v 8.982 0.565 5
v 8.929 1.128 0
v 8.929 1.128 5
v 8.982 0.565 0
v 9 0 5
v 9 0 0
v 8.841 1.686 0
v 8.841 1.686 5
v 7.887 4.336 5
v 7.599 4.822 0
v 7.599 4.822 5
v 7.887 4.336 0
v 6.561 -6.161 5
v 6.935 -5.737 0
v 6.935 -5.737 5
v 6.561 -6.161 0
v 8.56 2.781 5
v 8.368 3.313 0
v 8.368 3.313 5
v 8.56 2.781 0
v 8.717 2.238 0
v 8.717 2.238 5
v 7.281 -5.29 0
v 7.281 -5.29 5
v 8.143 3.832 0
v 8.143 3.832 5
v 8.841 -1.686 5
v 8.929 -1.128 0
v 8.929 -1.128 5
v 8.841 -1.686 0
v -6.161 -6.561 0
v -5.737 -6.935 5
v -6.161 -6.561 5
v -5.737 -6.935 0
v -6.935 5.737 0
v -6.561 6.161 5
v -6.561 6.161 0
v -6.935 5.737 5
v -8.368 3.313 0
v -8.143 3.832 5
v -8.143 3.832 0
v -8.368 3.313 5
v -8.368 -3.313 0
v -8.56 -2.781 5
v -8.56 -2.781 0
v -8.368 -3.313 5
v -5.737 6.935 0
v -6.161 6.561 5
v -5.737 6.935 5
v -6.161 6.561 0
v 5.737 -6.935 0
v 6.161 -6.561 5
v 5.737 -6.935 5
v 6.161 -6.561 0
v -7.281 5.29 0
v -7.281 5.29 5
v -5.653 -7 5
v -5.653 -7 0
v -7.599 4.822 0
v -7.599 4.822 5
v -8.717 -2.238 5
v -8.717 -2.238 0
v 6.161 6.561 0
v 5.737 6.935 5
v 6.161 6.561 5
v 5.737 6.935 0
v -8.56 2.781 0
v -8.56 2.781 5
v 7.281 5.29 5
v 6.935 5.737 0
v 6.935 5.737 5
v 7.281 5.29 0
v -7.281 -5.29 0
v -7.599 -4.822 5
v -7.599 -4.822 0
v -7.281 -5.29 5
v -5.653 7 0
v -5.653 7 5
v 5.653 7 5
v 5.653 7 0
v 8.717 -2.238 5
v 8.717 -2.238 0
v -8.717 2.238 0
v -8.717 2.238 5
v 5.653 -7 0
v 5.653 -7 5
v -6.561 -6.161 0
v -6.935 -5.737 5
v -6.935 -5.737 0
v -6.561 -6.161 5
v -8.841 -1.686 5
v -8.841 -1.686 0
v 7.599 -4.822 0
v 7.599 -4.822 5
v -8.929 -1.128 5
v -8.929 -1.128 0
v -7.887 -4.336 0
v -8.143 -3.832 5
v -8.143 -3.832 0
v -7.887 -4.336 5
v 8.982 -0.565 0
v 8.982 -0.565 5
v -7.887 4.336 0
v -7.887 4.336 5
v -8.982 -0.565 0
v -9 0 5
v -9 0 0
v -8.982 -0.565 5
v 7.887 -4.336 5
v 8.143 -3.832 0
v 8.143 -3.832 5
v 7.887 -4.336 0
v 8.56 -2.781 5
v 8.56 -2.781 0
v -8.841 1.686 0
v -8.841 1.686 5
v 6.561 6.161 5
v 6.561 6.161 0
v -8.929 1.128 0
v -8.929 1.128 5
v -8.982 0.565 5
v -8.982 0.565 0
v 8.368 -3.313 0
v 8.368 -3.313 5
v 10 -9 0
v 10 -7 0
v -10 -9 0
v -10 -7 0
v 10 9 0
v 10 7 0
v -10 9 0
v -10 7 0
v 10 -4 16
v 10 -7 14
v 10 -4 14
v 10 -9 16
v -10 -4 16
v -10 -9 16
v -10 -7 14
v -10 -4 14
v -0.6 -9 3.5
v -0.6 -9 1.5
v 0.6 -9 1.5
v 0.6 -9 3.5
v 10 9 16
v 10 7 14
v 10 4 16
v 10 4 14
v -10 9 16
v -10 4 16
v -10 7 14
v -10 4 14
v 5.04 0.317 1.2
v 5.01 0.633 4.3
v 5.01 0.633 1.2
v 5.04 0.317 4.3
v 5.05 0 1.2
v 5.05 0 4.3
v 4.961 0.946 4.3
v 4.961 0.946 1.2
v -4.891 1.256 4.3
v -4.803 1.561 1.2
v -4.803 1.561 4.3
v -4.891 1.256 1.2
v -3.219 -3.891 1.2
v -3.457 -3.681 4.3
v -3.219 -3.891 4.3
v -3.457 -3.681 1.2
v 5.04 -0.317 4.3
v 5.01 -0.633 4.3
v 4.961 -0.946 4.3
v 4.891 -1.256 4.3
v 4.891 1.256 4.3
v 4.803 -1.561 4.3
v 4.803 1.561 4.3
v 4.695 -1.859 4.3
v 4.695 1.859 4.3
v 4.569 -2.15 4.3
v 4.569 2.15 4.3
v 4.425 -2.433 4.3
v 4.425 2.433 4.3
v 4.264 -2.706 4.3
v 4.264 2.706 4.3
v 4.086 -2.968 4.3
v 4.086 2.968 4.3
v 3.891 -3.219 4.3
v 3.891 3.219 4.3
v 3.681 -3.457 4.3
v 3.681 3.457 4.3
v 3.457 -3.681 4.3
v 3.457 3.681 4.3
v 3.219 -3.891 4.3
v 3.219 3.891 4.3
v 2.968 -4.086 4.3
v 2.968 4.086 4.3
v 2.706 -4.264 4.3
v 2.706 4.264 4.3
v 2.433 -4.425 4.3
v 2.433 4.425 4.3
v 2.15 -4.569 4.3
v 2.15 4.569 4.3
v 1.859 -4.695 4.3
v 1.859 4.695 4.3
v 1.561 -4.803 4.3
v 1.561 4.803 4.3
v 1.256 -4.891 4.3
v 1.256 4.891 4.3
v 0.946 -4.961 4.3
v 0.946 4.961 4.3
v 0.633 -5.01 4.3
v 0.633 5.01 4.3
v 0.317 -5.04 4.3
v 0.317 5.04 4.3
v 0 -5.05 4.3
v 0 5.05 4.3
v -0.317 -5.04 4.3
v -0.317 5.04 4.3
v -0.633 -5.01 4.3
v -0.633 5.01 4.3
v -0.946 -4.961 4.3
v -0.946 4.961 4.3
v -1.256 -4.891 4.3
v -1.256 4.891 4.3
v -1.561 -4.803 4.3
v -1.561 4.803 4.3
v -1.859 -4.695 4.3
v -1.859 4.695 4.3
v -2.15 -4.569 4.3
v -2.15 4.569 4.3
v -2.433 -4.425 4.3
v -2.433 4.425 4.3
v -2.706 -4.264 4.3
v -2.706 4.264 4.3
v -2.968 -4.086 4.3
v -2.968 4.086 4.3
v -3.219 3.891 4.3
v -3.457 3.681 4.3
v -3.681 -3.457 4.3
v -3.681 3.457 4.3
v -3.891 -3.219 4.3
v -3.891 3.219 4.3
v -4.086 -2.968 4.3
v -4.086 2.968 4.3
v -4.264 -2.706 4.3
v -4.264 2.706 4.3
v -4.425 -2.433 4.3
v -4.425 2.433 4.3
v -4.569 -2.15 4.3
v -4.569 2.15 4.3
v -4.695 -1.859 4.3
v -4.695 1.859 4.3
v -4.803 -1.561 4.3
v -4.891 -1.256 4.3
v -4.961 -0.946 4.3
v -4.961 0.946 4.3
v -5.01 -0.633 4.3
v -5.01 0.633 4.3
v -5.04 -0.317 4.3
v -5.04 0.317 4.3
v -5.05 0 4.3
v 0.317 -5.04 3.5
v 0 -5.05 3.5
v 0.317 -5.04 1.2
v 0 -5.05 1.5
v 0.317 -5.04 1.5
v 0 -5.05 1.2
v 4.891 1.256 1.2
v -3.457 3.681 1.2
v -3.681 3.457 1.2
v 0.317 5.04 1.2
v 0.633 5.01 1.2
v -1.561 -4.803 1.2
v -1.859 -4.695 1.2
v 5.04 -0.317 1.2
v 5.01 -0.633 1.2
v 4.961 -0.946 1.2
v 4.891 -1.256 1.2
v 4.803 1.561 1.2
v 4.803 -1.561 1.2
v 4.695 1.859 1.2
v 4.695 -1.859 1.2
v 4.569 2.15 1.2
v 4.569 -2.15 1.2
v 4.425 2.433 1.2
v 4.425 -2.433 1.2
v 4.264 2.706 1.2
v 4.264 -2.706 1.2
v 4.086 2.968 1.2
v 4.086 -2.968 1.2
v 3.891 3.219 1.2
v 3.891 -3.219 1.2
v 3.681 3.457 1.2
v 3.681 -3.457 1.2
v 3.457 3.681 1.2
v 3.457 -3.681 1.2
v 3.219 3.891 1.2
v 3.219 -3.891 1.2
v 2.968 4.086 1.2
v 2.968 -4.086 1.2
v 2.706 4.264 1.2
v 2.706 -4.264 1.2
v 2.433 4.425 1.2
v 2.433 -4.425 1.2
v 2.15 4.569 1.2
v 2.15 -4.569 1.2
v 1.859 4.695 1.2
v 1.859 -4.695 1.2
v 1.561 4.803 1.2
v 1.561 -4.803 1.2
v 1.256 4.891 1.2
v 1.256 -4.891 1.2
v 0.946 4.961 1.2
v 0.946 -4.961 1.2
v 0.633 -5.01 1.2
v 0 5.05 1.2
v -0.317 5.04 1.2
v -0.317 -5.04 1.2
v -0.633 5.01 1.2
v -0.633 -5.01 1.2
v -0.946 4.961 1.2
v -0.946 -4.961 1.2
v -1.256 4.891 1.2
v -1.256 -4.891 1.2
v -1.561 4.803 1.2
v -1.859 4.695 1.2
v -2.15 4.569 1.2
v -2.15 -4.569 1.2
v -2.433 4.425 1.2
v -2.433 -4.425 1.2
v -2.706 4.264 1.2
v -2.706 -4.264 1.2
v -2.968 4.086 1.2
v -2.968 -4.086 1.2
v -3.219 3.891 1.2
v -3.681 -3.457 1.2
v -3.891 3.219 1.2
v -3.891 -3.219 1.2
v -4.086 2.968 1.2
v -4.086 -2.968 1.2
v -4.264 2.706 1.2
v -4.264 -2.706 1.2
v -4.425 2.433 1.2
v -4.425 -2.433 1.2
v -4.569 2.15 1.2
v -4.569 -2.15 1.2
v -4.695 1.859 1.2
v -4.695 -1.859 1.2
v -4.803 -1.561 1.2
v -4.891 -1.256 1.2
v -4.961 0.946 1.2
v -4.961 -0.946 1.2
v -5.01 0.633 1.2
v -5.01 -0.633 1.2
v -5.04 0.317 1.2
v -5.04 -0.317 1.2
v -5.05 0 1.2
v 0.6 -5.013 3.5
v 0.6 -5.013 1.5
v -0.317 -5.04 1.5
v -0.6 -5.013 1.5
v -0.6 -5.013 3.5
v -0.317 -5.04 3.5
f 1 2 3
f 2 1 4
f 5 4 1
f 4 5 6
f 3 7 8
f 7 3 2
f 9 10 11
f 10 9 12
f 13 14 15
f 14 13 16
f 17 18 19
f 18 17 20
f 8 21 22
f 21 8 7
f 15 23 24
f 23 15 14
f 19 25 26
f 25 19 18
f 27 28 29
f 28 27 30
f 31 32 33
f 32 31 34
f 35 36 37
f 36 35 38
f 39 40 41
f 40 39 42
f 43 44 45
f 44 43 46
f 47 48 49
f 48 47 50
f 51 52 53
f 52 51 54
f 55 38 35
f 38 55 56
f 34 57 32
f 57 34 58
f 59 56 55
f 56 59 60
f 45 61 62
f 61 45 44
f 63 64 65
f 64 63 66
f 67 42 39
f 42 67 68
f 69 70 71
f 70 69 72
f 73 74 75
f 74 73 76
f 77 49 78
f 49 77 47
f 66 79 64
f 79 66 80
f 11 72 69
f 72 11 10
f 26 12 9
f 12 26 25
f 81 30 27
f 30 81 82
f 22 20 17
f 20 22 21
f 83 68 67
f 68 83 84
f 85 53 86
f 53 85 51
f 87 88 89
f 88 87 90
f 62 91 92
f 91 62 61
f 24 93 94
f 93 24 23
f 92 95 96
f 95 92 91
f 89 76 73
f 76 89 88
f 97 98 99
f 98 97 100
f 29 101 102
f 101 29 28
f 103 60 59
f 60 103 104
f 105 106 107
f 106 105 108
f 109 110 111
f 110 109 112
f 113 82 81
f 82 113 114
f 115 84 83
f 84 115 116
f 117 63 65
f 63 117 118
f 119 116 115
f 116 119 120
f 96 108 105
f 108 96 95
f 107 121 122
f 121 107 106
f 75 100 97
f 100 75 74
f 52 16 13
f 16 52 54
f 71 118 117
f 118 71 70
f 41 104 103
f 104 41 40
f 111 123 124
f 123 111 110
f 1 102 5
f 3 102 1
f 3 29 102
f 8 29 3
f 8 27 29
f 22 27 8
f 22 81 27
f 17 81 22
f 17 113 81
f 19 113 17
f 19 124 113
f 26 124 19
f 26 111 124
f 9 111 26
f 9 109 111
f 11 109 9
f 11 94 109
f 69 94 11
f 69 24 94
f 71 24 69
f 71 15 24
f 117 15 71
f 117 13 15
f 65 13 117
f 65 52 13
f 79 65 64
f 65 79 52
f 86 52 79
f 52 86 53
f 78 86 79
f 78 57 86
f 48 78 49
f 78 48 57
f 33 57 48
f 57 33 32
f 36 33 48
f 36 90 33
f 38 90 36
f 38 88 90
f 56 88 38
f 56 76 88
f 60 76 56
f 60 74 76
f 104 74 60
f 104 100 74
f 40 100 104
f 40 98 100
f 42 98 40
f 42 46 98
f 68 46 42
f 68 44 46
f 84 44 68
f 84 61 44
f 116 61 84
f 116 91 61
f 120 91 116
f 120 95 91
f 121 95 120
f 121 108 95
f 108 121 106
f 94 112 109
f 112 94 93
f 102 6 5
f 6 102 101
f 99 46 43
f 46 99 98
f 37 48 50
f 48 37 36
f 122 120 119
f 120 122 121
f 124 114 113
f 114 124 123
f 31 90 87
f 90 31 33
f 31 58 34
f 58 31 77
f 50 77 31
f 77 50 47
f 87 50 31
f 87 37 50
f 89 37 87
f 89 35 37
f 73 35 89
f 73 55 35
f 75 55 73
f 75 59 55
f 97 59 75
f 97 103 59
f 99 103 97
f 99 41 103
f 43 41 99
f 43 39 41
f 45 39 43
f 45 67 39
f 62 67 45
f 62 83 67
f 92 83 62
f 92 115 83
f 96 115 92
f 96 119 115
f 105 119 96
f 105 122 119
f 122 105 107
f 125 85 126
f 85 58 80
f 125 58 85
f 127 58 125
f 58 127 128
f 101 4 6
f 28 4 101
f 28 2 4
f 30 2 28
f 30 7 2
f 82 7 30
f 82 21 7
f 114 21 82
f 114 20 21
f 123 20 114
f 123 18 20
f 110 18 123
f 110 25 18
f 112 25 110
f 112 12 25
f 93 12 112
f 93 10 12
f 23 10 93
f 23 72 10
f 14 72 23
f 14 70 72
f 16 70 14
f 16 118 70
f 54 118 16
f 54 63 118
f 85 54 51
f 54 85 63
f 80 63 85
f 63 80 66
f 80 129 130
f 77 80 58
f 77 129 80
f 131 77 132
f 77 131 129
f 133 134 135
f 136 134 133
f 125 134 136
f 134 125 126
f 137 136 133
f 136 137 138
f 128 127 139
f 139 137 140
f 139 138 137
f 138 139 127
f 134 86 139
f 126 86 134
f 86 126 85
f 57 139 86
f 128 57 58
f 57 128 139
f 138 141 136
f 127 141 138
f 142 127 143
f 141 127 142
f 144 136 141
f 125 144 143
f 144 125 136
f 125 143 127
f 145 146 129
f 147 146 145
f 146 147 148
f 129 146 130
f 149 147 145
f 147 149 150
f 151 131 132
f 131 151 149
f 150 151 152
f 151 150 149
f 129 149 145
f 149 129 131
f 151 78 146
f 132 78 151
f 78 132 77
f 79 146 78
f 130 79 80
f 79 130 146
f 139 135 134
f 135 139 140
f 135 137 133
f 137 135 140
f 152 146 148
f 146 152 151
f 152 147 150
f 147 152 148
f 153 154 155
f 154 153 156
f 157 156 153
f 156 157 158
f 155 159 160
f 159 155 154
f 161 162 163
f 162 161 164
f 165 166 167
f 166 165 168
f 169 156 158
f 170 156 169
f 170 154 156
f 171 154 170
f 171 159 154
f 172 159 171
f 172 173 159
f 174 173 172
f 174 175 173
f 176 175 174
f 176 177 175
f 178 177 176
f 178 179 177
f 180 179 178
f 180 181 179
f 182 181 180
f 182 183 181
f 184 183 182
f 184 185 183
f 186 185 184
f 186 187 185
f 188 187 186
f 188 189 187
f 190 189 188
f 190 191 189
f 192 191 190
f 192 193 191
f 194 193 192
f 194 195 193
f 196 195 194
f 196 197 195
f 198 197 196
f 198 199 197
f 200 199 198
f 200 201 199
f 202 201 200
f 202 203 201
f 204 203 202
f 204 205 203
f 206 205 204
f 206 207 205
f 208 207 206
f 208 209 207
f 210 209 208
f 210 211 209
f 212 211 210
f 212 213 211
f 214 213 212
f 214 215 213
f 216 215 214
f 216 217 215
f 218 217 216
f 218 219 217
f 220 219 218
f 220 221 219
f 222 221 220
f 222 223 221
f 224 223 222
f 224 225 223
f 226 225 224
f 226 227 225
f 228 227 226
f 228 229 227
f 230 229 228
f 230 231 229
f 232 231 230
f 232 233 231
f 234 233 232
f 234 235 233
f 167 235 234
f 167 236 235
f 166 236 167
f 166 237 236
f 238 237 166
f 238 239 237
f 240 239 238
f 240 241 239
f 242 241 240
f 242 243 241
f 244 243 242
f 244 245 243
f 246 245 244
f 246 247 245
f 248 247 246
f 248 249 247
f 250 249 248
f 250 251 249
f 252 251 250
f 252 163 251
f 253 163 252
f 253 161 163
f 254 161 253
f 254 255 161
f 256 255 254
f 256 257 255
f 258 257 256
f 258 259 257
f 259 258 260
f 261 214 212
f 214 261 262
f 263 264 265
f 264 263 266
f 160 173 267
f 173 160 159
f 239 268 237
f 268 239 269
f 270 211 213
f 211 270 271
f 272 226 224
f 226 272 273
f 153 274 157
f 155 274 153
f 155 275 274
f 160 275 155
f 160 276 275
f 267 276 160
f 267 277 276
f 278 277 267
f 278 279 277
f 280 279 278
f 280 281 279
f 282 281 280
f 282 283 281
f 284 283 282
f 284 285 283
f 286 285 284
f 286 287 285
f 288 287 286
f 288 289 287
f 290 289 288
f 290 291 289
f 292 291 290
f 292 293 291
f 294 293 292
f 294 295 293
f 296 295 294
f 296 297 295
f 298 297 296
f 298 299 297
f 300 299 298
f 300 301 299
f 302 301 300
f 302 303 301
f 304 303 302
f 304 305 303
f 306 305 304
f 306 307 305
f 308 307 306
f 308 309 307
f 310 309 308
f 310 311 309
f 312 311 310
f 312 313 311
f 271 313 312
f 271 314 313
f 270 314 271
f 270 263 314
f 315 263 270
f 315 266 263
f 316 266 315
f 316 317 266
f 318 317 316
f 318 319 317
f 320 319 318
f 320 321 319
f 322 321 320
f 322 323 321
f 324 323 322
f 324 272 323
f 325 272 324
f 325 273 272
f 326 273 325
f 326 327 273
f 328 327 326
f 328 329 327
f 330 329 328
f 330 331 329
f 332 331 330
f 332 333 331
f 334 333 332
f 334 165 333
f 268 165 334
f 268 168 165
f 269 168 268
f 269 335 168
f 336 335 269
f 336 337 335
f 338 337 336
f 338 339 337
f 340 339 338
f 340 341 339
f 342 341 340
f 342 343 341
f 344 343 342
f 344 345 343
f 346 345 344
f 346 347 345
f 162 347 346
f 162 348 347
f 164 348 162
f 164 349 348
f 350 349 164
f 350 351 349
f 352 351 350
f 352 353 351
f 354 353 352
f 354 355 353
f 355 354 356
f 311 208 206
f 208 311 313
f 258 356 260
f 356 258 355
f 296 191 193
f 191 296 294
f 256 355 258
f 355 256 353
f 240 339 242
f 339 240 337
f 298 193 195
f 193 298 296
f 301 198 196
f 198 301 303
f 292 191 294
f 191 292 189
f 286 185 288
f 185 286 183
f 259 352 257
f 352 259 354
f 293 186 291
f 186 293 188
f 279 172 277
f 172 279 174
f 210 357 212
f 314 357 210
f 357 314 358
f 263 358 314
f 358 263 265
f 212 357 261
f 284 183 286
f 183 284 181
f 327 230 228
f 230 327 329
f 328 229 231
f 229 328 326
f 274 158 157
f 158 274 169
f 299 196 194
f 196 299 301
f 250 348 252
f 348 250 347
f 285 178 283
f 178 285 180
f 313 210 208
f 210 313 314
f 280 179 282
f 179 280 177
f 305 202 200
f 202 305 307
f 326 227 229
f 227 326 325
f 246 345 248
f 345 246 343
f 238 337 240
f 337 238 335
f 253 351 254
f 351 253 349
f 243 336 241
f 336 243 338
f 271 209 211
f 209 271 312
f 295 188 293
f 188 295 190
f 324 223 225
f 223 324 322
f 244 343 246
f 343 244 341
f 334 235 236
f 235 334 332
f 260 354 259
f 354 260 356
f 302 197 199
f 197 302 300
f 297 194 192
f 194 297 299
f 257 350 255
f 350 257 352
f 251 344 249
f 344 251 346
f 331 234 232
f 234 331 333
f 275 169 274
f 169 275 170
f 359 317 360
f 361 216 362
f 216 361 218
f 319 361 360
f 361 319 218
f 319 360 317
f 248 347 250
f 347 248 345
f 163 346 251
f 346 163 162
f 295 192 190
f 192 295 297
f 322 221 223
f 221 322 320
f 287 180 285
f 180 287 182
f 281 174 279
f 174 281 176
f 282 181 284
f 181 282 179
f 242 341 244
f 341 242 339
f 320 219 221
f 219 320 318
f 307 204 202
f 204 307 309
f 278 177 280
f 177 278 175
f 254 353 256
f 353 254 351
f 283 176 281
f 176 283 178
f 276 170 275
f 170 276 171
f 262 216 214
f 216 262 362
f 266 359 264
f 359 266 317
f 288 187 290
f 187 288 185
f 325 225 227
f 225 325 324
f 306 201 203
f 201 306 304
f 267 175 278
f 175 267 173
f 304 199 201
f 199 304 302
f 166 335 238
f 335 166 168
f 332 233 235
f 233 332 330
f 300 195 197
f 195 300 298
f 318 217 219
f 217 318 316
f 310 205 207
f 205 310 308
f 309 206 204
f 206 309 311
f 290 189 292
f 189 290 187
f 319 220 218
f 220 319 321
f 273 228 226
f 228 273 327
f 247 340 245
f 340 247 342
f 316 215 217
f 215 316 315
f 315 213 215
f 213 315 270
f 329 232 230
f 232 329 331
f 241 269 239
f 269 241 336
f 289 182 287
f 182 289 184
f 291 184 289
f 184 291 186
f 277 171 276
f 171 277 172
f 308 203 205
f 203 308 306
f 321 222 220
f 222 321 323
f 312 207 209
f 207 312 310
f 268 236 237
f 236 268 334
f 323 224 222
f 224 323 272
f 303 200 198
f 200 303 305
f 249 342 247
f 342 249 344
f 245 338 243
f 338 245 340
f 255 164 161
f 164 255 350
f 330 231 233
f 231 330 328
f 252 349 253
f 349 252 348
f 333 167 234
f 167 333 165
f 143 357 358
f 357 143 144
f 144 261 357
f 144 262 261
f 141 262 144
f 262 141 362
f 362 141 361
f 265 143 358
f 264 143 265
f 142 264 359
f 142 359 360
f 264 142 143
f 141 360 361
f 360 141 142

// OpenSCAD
// V51-R: Right Pacer Saddle for Michigan Protocol
// Optimized for 10mm x 3mm LRA with AWG 30 leads

module pacer_right() {
    difference() {
        union() {
            // 1. THE BASE PLATE
            // Holds the motor against the skin
            cylinder(d=18, h=5, $fn=100);

            // 2. THE CLIPS (Saddles over the battery pod)
            // These "hug" the headphone battery/circuit pod
            translate([-10, -9, 0]) cube([20, 2, 16]); // Bottom Rail
            translate([-10, 7, 0])  cube([20, 2, 16]); // Top Rail
            
            // 3. RETENTION HOOKS
            // These snap over the edges of the pod
            translate([-10, -9, 14]) cube([20, 5, 2]); 
            translate([-10, 4, 14])  cube([20, 5, 2]);
        }

        // 4. MOTOR CAVITY (Skin-Side)
        // 10.1mm for the 10mm motor diameter
        translate([0, 0, 1.2]) 
            cylinder(d=10.1, h=3.1, $fn=100);

        // 5. WIRE TRENCH
        // Sized for the thin AWG 30 wires to exit without pinching
        translate([0, -10, 2.5]) 
            cube([1.2, 15, 2], center=true);

        // 6. EMBOSSED "R" MARKING
        // Subtracting the letter from the outer face for tactile ID
        translate([0, 0, 15]) 
            linear_extrude(height = 1.5) 
                text("R", size=8, font="Arial:style=Bold", halign="center", valign="center");
    }
}

pacer_right();
